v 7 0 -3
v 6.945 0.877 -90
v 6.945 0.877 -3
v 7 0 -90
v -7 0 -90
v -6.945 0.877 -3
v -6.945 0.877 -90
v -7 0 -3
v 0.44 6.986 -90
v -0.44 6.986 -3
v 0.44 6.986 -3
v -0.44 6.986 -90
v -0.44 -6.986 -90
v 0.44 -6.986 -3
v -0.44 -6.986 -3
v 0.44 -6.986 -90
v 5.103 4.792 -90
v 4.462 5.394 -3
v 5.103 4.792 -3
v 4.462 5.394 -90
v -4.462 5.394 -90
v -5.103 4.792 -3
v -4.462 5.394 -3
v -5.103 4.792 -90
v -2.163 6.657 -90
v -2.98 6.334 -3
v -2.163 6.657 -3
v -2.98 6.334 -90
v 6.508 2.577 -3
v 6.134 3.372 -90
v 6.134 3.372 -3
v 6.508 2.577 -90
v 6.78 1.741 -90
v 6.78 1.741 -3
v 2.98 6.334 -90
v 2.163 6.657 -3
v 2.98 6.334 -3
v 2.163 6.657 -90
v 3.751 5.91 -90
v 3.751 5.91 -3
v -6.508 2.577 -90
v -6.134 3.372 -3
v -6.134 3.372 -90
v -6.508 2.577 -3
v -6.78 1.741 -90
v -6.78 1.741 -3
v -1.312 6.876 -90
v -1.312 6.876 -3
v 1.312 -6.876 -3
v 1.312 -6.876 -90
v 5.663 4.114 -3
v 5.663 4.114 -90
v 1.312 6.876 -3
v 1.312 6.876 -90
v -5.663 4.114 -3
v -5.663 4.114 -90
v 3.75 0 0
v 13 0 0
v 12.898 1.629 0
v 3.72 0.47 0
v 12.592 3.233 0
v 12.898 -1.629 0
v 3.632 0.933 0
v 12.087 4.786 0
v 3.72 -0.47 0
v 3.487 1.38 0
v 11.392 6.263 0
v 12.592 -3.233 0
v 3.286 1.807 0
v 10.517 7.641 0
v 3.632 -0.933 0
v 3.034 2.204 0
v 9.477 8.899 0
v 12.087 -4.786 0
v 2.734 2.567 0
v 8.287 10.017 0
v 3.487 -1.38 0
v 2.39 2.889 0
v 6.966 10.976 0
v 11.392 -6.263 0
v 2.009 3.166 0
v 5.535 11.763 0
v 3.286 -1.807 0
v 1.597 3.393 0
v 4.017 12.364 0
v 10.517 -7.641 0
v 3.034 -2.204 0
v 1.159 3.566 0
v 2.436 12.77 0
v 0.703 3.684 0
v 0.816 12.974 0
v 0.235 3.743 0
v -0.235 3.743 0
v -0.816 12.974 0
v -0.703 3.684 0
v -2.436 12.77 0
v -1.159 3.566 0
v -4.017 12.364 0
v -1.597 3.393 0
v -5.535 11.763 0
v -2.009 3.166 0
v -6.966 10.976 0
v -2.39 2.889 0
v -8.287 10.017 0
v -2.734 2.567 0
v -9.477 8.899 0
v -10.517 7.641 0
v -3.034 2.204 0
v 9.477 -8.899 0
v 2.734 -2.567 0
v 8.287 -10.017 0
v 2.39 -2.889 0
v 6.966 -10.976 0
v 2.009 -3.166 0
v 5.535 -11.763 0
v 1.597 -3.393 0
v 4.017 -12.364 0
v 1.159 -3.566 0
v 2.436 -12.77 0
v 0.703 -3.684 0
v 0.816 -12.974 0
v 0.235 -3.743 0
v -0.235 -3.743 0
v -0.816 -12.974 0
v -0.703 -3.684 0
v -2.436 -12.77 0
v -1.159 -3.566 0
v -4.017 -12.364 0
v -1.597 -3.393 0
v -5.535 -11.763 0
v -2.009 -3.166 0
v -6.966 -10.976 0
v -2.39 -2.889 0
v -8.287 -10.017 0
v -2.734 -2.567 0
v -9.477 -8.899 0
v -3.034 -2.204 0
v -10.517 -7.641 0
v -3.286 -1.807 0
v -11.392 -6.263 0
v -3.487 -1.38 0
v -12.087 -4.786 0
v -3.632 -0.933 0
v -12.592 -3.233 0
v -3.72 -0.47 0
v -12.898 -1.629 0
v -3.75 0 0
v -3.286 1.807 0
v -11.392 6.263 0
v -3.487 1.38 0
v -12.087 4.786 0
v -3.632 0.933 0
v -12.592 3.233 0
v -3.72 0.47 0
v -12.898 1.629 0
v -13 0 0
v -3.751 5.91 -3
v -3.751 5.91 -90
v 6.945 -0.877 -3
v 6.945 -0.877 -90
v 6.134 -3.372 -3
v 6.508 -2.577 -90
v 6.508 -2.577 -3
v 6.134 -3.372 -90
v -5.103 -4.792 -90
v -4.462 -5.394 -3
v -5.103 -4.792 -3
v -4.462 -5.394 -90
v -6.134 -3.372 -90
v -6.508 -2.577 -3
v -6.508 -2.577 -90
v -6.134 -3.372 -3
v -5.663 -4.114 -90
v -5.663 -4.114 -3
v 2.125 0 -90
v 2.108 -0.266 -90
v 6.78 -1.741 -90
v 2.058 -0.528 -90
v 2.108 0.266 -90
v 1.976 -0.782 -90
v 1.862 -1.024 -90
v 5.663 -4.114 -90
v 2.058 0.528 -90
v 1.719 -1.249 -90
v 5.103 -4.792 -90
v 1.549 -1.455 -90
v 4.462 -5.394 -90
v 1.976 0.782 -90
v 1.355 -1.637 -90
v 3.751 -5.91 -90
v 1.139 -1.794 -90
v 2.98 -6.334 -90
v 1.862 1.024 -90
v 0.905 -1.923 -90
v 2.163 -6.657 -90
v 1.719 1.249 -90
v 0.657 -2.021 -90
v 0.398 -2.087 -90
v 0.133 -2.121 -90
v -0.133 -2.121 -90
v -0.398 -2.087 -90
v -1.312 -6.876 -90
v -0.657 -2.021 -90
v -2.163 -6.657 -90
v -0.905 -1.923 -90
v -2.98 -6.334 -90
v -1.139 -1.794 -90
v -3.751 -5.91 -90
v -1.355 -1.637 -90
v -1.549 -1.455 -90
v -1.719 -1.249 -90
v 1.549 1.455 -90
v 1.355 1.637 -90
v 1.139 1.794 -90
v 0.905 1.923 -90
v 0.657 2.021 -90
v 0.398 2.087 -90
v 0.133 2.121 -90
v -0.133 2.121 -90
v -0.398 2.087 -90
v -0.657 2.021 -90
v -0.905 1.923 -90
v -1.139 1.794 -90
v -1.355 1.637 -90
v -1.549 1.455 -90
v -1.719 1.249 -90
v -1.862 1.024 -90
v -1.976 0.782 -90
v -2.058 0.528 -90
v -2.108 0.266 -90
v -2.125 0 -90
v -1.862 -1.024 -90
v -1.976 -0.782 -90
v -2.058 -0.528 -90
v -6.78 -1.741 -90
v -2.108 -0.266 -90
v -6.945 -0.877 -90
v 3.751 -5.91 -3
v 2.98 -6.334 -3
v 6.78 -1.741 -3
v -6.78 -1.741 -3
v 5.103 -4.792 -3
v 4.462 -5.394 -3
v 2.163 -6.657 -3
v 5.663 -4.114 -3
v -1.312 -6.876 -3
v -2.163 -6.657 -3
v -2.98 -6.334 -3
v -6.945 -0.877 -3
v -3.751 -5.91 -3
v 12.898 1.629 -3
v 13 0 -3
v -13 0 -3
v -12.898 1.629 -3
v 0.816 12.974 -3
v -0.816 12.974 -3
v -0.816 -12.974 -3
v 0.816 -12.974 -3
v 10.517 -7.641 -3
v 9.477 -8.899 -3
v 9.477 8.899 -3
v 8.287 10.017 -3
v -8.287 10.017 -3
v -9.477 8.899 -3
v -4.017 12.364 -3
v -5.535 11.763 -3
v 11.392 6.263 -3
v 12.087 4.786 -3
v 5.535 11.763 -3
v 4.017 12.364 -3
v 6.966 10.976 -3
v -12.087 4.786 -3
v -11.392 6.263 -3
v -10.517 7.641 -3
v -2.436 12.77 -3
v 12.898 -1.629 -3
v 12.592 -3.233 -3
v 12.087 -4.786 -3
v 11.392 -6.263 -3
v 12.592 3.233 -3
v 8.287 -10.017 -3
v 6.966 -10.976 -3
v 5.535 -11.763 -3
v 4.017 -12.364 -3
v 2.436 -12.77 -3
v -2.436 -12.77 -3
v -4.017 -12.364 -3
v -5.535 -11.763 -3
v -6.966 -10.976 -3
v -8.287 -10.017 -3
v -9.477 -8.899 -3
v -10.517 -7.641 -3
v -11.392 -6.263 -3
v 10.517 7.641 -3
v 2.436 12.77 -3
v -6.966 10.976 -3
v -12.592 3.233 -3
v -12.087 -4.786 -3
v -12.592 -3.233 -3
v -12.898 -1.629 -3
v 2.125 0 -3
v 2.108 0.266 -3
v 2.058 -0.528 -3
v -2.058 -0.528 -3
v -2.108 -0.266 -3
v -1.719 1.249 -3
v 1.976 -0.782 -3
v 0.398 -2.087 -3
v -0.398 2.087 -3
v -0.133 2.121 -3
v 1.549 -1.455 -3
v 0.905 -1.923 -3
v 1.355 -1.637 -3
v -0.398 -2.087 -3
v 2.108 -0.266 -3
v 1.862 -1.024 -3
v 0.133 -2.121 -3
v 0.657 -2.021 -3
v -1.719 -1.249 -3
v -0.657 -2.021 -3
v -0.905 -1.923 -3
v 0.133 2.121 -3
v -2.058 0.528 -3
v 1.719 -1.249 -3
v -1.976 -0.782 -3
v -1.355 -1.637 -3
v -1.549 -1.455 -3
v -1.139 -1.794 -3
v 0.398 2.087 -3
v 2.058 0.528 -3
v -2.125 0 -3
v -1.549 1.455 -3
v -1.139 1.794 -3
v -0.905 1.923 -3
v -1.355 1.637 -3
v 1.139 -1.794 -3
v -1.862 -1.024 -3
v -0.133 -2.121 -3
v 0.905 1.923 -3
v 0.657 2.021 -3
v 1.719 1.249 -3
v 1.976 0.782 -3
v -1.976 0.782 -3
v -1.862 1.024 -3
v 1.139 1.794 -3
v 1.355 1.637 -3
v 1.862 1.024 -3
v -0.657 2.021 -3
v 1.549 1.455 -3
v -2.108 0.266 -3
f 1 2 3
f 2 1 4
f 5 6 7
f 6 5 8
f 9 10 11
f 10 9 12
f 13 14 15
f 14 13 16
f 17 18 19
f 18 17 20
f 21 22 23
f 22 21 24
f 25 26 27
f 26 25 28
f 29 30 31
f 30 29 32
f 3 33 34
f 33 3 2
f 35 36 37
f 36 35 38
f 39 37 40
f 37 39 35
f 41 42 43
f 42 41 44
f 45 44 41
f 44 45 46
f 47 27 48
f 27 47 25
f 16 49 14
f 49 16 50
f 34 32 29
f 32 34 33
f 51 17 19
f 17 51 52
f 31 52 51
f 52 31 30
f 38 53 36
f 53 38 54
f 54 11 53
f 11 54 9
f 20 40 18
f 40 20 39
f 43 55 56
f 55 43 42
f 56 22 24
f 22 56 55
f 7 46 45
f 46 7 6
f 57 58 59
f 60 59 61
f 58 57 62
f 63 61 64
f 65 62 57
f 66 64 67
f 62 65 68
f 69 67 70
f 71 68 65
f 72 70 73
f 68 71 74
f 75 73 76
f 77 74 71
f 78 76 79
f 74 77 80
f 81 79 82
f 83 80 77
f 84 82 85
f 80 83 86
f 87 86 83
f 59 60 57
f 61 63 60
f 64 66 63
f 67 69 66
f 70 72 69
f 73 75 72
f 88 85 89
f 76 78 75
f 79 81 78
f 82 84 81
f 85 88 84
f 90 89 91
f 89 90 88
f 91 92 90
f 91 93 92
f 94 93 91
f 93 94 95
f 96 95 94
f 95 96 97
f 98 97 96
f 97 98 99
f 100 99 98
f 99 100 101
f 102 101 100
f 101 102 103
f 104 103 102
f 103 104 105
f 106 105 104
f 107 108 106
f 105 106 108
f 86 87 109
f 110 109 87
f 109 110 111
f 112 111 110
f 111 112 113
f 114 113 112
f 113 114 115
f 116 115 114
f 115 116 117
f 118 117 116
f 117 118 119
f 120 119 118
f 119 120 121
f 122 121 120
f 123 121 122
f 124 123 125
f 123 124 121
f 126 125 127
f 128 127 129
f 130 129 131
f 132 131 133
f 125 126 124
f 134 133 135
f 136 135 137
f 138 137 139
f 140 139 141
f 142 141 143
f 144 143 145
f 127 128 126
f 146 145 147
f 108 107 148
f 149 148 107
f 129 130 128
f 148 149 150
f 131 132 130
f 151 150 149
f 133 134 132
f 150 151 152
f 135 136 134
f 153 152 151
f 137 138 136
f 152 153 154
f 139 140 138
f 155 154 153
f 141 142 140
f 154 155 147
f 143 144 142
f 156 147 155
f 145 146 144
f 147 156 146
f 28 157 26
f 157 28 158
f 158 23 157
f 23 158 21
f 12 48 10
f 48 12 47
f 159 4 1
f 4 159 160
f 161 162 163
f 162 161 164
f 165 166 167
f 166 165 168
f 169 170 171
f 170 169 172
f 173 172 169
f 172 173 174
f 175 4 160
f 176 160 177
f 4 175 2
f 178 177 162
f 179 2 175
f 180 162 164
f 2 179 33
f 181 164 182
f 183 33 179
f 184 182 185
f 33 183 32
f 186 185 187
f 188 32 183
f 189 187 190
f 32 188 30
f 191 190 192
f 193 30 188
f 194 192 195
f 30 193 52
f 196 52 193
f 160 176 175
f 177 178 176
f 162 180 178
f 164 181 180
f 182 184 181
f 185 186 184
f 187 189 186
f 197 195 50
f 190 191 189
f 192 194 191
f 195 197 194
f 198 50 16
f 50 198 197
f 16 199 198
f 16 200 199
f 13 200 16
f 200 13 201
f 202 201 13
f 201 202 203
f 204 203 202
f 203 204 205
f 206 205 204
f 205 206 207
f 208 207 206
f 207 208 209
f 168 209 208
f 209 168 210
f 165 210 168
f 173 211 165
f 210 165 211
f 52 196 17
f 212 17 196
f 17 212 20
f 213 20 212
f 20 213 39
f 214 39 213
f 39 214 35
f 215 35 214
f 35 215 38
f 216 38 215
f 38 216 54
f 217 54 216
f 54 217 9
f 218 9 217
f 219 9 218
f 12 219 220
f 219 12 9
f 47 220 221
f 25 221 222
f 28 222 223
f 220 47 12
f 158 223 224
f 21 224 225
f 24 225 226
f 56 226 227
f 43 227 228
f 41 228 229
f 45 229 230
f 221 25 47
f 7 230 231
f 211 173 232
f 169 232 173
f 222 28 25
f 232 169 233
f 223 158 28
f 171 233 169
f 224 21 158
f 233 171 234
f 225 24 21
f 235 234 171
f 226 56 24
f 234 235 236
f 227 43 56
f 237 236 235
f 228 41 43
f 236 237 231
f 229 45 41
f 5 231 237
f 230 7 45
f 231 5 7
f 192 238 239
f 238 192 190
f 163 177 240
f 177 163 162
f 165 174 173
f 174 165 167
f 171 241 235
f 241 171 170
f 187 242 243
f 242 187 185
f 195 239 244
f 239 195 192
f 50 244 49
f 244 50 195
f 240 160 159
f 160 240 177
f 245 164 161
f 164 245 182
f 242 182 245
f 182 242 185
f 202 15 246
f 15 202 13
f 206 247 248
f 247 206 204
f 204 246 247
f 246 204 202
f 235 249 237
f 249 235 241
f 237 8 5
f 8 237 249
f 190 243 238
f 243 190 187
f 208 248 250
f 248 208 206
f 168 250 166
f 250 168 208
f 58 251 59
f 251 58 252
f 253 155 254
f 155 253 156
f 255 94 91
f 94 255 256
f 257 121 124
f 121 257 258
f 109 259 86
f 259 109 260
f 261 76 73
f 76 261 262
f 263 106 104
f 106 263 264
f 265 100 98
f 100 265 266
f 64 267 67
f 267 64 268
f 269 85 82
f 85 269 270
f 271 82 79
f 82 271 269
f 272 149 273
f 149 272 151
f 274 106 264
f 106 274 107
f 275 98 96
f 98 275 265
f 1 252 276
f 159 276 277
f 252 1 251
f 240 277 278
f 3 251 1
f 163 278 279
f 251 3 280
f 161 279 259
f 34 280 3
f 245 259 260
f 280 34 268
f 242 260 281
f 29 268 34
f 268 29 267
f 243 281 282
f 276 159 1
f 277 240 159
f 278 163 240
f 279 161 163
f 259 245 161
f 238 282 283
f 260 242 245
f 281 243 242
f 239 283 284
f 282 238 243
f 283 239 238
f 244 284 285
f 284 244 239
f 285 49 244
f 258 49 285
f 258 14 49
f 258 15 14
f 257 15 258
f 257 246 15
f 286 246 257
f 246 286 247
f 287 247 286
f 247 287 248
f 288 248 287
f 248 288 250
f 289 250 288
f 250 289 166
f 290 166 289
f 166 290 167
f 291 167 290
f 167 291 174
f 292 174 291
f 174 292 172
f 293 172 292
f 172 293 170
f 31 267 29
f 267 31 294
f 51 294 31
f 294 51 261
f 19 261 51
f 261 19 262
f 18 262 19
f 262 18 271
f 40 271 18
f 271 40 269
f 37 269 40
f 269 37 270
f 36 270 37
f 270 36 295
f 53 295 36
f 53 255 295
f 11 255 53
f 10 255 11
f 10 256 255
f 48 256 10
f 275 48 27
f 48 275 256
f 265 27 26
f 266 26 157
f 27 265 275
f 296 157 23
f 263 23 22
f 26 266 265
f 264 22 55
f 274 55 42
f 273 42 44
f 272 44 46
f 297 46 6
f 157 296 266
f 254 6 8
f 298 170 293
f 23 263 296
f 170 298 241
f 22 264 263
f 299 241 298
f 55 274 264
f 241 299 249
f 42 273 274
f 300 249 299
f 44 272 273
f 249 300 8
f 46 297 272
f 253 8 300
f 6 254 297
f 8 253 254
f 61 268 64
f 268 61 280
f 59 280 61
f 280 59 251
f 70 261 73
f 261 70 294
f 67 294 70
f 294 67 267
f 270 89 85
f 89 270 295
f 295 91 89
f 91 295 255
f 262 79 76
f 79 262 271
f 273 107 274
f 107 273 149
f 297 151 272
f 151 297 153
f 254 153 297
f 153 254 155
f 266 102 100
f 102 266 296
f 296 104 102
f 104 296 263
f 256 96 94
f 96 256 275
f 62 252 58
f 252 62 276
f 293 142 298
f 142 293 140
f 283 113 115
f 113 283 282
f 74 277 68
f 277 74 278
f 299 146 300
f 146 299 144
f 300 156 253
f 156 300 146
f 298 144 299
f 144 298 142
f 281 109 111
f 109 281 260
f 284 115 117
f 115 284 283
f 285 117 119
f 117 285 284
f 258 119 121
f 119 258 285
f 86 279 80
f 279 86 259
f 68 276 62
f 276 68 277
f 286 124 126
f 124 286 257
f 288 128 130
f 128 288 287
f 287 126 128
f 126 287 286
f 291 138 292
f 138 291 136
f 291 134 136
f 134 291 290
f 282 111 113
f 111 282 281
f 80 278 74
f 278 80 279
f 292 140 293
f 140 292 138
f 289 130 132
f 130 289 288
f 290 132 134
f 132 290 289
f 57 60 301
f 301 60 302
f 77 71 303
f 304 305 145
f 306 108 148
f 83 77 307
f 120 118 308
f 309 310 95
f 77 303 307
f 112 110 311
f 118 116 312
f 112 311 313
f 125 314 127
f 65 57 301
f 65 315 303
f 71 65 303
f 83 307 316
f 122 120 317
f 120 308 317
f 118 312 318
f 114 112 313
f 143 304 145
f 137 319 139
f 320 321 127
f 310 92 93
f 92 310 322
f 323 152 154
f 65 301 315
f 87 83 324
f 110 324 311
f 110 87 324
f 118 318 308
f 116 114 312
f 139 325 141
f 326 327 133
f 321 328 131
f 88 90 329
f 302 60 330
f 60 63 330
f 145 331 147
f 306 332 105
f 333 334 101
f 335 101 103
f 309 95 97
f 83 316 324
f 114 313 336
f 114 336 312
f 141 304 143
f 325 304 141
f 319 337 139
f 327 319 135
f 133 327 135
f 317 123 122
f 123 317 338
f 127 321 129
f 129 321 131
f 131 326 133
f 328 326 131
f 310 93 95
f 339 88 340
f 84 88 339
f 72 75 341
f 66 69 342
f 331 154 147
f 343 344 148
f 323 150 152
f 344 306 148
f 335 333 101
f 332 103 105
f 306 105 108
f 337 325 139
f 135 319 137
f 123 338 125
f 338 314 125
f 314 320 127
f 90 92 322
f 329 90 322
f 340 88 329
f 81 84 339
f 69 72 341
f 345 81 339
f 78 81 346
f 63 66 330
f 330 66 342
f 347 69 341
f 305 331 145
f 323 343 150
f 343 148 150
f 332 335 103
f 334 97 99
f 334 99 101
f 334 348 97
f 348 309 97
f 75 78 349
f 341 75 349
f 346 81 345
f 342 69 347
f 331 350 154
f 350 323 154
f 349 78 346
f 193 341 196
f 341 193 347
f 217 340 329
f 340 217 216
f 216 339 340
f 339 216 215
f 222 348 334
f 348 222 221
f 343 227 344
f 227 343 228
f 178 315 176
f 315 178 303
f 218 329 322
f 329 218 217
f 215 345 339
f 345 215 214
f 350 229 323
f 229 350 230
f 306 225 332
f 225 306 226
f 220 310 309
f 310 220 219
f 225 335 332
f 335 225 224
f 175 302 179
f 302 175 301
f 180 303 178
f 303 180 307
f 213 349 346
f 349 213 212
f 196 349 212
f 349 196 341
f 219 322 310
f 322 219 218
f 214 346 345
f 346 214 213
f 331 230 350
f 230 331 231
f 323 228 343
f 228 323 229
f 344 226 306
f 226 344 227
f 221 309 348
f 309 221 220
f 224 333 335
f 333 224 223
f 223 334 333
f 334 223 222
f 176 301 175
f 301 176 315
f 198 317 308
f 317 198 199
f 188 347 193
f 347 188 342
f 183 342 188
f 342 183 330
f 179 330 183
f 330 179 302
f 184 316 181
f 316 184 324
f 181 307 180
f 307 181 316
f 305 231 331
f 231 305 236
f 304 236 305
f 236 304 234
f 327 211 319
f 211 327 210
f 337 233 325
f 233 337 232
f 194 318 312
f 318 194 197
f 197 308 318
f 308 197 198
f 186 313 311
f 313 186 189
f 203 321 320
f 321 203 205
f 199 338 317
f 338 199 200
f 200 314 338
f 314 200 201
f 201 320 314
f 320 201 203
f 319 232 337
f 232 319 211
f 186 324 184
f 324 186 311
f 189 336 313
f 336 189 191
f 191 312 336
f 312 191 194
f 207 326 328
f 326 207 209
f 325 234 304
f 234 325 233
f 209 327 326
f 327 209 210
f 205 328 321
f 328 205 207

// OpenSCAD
$fn = 50;


difference() {
	union() {
		translate(v = [0, 0, -90.0000000000]) {
			cylinder(h = 90, r = 7.0000000000);
		}
		translate(v = [0, 0, -3.0000000000]) {
			cylinder(h = 3, r = 13.0000000000);
		}
	}
	union() {
		translate(v = [0, 0, 0]) {
			rotate(a = [0, 0, 0]) {
				difference() {
					union() {
						#translate(v = [0, 0, -90.0000000000]) {
							cylinder(h = 90, r = 2.0000000000);
						}
						#translate(v = [0, 0, -3]) {
							cylinder(h = 3, r = 7.0000000000, r1 = 2.1250000000, r2 = 3.7500000000);
						}
						#translate(v = [0, 0, -90.0000000000]) {
							cylinder(h = 90, r = 2.1250000000);
						}
						#translate(v = [0, 0, -90.0000000000]) {
							cylinder(h = 90, r = 2.0000000000);
						}
					}
					union();
				}
			}
		}
	}
}
